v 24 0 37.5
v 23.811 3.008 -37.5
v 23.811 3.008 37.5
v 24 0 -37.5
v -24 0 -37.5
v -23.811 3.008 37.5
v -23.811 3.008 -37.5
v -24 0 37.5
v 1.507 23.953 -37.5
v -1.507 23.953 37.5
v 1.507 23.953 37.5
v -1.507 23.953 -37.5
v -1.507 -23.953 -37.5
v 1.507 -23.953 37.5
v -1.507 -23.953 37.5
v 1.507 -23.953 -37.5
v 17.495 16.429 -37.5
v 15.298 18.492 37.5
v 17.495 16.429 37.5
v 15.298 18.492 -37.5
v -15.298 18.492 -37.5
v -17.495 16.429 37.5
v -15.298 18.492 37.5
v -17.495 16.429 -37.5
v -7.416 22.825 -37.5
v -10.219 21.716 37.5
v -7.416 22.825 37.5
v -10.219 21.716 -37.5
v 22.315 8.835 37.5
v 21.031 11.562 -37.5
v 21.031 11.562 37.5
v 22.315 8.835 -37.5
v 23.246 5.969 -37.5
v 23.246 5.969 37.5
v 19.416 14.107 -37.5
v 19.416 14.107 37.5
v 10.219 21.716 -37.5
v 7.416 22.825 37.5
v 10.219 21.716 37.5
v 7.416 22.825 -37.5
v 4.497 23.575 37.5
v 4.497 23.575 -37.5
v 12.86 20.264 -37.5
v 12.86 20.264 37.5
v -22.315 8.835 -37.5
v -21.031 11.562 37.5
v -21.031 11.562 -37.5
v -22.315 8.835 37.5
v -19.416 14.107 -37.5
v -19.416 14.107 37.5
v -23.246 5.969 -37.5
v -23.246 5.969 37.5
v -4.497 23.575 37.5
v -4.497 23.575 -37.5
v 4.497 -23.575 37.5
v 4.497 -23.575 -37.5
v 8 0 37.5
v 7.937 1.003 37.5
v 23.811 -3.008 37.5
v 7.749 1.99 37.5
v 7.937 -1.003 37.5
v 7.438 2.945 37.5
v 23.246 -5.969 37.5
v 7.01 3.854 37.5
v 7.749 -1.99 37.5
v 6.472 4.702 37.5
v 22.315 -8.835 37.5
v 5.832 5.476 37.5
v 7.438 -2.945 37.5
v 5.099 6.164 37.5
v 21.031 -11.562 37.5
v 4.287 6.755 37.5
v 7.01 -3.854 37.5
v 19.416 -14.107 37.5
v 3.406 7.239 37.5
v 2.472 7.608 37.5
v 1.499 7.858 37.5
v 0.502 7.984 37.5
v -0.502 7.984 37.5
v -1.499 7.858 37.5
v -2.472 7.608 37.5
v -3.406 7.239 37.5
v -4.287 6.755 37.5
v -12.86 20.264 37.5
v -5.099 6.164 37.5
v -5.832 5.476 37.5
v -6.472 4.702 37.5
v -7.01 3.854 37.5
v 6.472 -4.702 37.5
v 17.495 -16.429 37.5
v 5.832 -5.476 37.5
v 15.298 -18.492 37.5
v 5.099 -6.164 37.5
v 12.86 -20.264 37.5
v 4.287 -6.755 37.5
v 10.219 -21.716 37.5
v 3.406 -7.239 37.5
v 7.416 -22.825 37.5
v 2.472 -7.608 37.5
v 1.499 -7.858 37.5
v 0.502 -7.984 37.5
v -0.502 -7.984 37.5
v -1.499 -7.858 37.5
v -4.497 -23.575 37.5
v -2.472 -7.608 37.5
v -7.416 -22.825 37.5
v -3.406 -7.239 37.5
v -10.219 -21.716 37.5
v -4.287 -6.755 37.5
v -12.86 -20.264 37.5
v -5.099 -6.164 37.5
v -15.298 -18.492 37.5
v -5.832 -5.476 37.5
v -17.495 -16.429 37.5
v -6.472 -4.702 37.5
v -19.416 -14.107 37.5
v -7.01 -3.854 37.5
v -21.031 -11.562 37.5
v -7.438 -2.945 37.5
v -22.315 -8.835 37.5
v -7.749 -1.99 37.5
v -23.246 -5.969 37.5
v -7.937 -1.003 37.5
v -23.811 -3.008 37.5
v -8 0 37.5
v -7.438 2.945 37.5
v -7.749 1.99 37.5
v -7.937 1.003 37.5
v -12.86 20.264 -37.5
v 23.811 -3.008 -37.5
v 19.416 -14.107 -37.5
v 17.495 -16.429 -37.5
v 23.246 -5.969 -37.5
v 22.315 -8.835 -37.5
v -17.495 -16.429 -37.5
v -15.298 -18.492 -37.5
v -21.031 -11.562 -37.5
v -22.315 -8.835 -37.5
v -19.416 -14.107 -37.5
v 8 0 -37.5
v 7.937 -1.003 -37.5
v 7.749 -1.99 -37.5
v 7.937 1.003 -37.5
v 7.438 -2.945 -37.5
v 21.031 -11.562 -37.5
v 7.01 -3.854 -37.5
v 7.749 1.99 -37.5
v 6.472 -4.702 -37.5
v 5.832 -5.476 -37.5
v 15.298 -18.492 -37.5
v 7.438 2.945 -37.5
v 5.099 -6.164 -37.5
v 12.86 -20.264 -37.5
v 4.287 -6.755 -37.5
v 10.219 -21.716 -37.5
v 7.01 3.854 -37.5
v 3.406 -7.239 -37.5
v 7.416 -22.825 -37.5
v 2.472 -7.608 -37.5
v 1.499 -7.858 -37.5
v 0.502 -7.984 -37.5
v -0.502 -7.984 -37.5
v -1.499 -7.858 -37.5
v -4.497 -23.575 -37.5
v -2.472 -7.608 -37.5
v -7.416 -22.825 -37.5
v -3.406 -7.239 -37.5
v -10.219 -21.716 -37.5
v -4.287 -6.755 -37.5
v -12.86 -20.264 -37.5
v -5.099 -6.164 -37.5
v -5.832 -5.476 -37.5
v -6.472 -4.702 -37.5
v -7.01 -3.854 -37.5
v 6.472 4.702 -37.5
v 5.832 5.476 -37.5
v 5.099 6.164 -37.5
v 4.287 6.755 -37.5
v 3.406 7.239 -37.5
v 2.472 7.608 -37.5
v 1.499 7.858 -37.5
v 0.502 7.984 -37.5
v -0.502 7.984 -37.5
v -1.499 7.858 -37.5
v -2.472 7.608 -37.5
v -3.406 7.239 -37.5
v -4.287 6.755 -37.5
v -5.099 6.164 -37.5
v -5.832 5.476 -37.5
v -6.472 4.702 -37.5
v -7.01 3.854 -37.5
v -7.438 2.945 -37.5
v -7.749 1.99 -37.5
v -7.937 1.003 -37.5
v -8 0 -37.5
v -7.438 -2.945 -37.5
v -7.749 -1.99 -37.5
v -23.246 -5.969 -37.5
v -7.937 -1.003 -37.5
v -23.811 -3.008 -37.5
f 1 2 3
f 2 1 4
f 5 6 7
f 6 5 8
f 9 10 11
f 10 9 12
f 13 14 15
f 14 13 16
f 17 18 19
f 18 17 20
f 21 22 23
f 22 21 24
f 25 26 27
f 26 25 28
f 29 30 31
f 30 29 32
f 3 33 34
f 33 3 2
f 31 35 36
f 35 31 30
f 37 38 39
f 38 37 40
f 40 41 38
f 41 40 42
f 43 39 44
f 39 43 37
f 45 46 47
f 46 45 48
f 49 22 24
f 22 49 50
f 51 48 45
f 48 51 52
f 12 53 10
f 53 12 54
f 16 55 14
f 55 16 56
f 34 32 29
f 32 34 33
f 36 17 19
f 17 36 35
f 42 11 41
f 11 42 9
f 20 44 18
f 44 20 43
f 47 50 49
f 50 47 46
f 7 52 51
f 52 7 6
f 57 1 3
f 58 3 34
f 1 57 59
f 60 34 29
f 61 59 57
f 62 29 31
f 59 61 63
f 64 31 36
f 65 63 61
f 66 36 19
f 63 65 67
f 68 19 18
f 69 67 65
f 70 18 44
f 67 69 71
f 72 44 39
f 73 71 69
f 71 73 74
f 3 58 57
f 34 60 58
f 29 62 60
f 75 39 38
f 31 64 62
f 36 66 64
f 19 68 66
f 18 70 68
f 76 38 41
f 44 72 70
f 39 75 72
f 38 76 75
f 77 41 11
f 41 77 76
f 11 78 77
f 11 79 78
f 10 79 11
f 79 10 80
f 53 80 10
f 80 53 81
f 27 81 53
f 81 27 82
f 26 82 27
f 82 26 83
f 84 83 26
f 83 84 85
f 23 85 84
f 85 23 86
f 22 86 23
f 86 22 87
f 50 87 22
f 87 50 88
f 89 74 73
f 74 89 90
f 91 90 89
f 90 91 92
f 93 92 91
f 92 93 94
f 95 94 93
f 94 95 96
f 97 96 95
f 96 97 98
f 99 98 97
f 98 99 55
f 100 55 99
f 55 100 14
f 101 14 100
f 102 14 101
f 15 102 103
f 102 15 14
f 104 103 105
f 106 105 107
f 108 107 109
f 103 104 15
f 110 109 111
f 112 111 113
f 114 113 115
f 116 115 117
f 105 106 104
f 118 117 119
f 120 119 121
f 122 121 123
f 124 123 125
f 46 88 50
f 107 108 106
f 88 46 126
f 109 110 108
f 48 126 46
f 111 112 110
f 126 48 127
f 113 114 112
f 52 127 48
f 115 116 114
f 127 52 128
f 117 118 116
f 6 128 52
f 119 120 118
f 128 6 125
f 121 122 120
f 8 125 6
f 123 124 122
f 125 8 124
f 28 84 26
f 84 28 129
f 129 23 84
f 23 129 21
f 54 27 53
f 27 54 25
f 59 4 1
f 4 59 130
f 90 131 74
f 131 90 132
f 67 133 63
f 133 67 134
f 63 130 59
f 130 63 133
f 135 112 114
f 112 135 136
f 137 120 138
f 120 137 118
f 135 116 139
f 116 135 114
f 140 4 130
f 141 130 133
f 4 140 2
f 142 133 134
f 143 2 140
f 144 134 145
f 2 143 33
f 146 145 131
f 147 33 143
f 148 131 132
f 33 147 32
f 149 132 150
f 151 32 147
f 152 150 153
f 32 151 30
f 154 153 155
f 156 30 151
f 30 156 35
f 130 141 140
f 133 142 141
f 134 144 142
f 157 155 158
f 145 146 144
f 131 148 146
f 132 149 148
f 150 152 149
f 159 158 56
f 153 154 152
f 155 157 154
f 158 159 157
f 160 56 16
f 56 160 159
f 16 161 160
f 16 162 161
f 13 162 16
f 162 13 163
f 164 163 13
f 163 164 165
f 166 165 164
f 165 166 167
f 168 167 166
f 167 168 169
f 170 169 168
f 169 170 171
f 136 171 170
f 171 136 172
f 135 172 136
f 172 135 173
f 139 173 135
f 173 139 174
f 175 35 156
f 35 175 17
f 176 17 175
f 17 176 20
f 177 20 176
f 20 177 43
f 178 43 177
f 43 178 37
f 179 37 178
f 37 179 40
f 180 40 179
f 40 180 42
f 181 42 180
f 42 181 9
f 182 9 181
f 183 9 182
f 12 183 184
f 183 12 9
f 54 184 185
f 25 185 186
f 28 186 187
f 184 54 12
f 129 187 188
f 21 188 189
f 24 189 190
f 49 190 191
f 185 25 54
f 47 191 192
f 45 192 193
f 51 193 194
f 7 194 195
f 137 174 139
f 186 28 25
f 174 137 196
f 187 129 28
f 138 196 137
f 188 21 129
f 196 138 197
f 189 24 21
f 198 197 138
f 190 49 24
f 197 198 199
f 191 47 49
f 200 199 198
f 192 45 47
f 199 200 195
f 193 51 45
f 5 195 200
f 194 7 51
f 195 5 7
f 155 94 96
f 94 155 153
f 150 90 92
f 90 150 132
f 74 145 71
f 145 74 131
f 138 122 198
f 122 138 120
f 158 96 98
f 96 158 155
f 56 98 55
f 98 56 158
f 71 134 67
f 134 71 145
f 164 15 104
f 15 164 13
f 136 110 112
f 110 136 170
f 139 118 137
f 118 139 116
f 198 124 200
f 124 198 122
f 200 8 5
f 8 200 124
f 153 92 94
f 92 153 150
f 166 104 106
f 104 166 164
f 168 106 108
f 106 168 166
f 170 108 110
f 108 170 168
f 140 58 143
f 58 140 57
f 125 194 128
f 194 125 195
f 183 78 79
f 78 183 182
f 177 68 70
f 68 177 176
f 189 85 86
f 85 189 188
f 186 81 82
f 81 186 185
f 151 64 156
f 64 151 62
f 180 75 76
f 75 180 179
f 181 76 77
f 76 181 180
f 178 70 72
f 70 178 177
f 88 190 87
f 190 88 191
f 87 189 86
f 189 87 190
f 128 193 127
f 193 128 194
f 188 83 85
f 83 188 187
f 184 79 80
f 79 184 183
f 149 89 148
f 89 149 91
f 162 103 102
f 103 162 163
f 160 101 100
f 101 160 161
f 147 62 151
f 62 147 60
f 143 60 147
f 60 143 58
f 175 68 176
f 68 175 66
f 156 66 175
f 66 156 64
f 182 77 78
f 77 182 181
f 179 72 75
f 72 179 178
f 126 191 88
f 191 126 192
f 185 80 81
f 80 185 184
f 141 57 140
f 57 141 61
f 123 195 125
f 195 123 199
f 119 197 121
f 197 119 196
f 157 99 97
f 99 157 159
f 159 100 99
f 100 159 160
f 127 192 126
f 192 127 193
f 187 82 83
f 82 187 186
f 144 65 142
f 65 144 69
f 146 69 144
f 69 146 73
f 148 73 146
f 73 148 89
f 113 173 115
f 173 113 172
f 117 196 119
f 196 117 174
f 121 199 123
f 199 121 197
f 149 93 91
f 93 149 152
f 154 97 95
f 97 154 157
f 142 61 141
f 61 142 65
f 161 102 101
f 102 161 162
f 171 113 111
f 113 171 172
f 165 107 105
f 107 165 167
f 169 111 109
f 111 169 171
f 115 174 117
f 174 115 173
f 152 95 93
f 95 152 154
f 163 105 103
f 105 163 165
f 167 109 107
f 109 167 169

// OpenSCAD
$fn = 50;


difference() {
	union() {
		translate(v = [0, 0, -37.5000000000]) {
			cylinder(h = 75, r = 24.0000000000);
		}
	}
	union() {
		translate(v = [0, 0, -100.0000000000]) {
			cylinder(h = 200, r = 8);
		}
	}
}
